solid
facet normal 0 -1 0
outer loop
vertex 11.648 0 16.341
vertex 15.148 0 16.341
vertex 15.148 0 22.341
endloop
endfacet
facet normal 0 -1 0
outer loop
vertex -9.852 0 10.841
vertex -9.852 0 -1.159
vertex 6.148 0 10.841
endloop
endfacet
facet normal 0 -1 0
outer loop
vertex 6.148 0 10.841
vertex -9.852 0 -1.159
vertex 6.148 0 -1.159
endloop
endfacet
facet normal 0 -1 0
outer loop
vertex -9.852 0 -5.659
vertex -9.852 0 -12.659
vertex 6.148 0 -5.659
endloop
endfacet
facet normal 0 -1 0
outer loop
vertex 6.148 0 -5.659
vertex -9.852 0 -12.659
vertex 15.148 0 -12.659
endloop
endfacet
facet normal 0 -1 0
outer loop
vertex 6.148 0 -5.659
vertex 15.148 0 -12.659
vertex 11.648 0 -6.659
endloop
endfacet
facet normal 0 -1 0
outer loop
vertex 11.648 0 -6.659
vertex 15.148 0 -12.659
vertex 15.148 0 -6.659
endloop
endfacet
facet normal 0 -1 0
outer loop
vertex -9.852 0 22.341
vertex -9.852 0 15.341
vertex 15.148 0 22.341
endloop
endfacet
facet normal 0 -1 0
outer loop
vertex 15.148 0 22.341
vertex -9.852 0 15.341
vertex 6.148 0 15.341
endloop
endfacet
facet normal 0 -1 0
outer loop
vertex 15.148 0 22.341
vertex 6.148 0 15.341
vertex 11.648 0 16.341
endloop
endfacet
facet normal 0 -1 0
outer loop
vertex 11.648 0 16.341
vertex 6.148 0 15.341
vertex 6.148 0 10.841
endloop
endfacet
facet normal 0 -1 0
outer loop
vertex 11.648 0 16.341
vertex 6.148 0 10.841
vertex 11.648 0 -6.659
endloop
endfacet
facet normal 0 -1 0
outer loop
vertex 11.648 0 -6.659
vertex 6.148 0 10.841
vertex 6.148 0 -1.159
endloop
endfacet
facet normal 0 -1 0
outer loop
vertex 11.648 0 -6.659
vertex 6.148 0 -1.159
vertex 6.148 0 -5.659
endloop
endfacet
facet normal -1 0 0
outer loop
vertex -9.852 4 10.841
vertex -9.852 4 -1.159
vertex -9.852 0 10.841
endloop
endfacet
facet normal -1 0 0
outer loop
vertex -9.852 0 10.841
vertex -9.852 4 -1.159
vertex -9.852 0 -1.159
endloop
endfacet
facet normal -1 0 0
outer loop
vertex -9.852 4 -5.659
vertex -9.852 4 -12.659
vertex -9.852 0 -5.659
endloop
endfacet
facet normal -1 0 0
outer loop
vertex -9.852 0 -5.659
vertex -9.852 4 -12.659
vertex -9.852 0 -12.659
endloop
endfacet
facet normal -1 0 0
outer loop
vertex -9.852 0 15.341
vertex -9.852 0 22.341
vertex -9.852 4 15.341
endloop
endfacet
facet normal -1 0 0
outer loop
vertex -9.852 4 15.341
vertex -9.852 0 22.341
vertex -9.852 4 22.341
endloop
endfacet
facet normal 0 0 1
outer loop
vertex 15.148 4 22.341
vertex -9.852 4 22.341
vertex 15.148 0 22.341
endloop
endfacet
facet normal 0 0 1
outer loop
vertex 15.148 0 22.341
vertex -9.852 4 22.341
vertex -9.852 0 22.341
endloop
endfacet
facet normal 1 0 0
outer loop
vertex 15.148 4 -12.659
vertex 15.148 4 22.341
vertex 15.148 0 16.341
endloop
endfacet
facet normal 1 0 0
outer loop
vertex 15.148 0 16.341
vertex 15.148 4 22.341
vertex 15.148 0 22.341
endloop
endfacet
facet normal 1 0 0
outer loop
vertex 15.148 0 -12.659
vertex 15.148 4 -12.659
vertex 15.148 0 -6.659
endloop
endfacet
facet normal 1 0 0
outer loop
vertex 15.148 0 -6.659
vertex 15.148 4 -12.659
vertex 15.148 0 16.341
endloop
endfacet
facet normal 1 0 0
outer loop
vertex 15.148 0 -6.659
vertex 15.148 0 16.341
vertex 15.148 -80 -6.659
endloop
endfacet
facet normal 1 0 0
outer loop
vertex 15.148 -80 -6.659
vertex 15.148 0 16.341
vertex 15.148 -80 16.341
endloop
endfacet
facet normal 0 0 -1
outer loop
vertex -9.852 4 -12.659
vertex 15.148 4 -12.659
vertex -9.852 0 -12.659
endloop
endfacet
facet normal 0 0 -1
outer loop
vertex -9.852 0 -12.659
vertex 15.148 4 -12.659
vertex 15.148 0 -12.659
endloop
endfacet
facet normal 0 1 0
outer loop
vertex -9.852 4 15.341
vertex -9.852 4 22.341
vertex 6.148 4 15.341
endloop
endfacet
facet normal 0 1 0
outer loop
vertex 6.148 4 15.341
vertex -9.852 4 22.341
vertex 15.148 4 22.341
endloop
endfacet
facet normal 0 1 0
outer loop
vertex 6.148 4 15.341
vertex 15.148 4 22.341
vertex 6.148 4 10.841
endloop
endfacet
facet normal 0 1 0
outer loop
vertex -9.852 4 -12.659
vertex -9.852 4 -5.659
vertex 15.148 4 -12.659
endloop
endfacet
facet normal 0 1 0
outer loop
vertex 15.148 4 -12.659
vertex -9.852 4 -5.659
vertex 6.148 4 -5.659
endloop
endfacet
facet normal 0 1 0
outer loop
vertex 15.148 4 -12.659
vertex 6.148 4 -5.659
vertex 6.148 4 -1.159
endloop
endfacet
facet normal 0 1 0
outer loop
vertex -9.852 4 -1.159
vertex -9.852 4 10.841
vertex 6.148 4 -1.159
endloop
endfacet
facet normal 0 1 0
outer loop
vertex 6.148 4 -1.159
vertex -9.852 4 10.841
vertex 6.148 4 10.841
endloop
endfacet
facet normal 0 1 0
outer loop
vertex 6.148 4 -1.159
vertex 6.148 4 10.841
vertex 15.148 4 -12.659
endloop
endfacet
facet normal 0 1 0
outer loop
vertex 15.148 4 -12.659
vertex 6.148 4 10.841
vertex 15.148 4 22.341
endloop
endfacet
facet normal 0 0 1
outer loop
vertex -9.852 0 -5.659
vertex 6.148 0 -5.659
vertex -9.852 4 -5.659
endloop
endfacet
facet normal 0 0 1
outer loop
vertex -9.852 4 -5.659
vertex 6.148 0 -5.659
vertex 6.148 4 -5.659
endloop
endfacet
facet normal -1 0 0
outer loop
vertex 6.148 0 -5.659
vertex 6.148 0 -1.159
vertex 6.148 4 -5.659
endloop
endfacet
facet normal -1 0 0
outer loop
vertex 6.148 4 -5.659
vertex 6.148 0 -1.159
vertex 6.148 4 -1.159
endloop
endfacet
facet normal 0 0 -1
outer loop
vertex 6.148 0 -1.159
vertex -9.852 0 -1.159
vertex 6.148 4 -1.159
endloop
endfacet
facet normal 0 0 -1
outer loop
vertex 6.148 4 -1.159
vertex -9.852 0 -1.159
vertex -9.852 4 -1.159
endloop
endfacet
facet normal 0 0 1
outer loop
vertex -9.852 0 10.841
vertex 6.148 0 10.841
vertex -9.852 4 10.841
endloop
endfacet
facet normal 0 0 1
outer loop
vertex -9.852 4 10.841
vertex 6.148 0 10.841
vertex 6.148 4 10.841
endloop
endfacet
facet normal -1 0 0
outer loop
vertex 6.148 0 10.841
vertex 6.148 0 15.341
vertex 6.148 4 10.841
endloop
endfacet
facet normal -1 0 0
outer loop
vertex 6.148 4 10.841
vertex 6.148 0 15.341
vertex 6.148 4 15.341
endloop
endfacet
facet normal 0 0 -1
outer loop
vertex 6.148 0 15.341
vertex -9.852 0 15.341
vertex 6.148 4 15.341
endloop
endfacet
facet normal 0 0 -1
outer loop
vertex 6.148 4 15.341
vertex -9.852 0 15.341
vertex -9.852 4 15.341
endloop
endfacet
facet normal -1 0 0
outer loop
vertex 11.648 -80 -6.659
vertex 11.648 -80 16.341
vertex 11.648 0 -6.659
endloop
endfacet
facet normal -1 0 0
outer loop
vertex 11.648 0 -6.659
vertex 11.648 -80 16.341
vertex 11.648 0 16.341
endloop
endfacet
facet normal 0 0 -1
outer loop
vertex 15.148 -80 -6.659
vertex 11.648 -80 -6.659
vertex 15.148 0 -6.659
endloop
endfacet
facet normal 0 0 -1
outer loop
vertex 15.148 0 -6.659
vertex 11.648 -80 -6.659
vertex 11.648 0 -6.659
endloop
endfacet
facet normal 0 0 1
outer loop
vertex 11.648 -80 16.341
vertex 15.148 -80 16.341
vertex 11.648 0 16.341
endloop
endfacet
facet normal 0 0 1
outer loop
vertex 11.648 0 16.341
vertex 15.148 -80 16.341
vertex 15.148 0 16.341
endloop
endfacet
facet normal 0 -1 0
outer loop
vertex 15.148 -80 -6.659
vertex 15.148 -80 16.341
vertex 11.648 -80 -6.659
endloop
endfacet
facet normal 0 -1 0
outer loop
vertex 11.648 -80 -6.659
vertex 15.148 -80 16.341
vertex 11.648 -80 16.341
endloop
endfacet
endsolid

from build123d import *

# Parameters (mm, degrees)
SKETCH1_W           = 25
SKETCH1_H           = 35
BOSS_EXTRUDE1_DEPTH = 4
SKETCH2_W           = 16
SKETCH2_H           = 4.5
CUT_EXTRUDE1_DEPTH  = 4
SKETCH3_W           = 3.5
SKETCH3_H           = 23
BOSS_EXTRUDE2_DEPTH = 80


with BuildPart() as part:
    # Sketch1 → Boss-Extrude1 (new body)
    with BuildSketch(Plane(origin=(0, 0, 0), x_dir=(1, 0, 0), z_dir=(0, 1, 0))):
        with Locations((2.648305085, -4.841101695)):
            Rectangle(SKETCH1_W, SKETCH1_H)
    extrude(amount=BOSS_EXTRUDE1_DEPTH)

    # Sketch2 → Cut-Extrude1 (cut)
    with BuildSketch(Plane(origin=(0, 4, 0), x_dir=(1, 0, 0), z_dir=(0, 1, 0))):
        with Locations((-1.851694915, -13.091101695)):
            Rectangle(SKETCH2_W, SKETCH2_H)
        with Locations((-1.851694915, 3.408898305)):
            Rectangle(SKETCH2_W, SKETCH2_H)
    extrude(amount=-CUT_EXTRUDE1_DEPTH, mode=Mode.SUBTRACT)

    # Sketch3 → Boss-Extrude2 (add)
    with BuildSketch(Plane(origin=(0, 0, 0), x_dir=(-1, 0, 0), z_dir=(0, -1, 0))):
        with Locations((-13.398305085, -4.841101695)):
            Rectangle(SKETCH3_W, SKETCH3_H)
    extrude(amount=BOSS_EXTRUDE2_DEPTH)


solid = part.part
